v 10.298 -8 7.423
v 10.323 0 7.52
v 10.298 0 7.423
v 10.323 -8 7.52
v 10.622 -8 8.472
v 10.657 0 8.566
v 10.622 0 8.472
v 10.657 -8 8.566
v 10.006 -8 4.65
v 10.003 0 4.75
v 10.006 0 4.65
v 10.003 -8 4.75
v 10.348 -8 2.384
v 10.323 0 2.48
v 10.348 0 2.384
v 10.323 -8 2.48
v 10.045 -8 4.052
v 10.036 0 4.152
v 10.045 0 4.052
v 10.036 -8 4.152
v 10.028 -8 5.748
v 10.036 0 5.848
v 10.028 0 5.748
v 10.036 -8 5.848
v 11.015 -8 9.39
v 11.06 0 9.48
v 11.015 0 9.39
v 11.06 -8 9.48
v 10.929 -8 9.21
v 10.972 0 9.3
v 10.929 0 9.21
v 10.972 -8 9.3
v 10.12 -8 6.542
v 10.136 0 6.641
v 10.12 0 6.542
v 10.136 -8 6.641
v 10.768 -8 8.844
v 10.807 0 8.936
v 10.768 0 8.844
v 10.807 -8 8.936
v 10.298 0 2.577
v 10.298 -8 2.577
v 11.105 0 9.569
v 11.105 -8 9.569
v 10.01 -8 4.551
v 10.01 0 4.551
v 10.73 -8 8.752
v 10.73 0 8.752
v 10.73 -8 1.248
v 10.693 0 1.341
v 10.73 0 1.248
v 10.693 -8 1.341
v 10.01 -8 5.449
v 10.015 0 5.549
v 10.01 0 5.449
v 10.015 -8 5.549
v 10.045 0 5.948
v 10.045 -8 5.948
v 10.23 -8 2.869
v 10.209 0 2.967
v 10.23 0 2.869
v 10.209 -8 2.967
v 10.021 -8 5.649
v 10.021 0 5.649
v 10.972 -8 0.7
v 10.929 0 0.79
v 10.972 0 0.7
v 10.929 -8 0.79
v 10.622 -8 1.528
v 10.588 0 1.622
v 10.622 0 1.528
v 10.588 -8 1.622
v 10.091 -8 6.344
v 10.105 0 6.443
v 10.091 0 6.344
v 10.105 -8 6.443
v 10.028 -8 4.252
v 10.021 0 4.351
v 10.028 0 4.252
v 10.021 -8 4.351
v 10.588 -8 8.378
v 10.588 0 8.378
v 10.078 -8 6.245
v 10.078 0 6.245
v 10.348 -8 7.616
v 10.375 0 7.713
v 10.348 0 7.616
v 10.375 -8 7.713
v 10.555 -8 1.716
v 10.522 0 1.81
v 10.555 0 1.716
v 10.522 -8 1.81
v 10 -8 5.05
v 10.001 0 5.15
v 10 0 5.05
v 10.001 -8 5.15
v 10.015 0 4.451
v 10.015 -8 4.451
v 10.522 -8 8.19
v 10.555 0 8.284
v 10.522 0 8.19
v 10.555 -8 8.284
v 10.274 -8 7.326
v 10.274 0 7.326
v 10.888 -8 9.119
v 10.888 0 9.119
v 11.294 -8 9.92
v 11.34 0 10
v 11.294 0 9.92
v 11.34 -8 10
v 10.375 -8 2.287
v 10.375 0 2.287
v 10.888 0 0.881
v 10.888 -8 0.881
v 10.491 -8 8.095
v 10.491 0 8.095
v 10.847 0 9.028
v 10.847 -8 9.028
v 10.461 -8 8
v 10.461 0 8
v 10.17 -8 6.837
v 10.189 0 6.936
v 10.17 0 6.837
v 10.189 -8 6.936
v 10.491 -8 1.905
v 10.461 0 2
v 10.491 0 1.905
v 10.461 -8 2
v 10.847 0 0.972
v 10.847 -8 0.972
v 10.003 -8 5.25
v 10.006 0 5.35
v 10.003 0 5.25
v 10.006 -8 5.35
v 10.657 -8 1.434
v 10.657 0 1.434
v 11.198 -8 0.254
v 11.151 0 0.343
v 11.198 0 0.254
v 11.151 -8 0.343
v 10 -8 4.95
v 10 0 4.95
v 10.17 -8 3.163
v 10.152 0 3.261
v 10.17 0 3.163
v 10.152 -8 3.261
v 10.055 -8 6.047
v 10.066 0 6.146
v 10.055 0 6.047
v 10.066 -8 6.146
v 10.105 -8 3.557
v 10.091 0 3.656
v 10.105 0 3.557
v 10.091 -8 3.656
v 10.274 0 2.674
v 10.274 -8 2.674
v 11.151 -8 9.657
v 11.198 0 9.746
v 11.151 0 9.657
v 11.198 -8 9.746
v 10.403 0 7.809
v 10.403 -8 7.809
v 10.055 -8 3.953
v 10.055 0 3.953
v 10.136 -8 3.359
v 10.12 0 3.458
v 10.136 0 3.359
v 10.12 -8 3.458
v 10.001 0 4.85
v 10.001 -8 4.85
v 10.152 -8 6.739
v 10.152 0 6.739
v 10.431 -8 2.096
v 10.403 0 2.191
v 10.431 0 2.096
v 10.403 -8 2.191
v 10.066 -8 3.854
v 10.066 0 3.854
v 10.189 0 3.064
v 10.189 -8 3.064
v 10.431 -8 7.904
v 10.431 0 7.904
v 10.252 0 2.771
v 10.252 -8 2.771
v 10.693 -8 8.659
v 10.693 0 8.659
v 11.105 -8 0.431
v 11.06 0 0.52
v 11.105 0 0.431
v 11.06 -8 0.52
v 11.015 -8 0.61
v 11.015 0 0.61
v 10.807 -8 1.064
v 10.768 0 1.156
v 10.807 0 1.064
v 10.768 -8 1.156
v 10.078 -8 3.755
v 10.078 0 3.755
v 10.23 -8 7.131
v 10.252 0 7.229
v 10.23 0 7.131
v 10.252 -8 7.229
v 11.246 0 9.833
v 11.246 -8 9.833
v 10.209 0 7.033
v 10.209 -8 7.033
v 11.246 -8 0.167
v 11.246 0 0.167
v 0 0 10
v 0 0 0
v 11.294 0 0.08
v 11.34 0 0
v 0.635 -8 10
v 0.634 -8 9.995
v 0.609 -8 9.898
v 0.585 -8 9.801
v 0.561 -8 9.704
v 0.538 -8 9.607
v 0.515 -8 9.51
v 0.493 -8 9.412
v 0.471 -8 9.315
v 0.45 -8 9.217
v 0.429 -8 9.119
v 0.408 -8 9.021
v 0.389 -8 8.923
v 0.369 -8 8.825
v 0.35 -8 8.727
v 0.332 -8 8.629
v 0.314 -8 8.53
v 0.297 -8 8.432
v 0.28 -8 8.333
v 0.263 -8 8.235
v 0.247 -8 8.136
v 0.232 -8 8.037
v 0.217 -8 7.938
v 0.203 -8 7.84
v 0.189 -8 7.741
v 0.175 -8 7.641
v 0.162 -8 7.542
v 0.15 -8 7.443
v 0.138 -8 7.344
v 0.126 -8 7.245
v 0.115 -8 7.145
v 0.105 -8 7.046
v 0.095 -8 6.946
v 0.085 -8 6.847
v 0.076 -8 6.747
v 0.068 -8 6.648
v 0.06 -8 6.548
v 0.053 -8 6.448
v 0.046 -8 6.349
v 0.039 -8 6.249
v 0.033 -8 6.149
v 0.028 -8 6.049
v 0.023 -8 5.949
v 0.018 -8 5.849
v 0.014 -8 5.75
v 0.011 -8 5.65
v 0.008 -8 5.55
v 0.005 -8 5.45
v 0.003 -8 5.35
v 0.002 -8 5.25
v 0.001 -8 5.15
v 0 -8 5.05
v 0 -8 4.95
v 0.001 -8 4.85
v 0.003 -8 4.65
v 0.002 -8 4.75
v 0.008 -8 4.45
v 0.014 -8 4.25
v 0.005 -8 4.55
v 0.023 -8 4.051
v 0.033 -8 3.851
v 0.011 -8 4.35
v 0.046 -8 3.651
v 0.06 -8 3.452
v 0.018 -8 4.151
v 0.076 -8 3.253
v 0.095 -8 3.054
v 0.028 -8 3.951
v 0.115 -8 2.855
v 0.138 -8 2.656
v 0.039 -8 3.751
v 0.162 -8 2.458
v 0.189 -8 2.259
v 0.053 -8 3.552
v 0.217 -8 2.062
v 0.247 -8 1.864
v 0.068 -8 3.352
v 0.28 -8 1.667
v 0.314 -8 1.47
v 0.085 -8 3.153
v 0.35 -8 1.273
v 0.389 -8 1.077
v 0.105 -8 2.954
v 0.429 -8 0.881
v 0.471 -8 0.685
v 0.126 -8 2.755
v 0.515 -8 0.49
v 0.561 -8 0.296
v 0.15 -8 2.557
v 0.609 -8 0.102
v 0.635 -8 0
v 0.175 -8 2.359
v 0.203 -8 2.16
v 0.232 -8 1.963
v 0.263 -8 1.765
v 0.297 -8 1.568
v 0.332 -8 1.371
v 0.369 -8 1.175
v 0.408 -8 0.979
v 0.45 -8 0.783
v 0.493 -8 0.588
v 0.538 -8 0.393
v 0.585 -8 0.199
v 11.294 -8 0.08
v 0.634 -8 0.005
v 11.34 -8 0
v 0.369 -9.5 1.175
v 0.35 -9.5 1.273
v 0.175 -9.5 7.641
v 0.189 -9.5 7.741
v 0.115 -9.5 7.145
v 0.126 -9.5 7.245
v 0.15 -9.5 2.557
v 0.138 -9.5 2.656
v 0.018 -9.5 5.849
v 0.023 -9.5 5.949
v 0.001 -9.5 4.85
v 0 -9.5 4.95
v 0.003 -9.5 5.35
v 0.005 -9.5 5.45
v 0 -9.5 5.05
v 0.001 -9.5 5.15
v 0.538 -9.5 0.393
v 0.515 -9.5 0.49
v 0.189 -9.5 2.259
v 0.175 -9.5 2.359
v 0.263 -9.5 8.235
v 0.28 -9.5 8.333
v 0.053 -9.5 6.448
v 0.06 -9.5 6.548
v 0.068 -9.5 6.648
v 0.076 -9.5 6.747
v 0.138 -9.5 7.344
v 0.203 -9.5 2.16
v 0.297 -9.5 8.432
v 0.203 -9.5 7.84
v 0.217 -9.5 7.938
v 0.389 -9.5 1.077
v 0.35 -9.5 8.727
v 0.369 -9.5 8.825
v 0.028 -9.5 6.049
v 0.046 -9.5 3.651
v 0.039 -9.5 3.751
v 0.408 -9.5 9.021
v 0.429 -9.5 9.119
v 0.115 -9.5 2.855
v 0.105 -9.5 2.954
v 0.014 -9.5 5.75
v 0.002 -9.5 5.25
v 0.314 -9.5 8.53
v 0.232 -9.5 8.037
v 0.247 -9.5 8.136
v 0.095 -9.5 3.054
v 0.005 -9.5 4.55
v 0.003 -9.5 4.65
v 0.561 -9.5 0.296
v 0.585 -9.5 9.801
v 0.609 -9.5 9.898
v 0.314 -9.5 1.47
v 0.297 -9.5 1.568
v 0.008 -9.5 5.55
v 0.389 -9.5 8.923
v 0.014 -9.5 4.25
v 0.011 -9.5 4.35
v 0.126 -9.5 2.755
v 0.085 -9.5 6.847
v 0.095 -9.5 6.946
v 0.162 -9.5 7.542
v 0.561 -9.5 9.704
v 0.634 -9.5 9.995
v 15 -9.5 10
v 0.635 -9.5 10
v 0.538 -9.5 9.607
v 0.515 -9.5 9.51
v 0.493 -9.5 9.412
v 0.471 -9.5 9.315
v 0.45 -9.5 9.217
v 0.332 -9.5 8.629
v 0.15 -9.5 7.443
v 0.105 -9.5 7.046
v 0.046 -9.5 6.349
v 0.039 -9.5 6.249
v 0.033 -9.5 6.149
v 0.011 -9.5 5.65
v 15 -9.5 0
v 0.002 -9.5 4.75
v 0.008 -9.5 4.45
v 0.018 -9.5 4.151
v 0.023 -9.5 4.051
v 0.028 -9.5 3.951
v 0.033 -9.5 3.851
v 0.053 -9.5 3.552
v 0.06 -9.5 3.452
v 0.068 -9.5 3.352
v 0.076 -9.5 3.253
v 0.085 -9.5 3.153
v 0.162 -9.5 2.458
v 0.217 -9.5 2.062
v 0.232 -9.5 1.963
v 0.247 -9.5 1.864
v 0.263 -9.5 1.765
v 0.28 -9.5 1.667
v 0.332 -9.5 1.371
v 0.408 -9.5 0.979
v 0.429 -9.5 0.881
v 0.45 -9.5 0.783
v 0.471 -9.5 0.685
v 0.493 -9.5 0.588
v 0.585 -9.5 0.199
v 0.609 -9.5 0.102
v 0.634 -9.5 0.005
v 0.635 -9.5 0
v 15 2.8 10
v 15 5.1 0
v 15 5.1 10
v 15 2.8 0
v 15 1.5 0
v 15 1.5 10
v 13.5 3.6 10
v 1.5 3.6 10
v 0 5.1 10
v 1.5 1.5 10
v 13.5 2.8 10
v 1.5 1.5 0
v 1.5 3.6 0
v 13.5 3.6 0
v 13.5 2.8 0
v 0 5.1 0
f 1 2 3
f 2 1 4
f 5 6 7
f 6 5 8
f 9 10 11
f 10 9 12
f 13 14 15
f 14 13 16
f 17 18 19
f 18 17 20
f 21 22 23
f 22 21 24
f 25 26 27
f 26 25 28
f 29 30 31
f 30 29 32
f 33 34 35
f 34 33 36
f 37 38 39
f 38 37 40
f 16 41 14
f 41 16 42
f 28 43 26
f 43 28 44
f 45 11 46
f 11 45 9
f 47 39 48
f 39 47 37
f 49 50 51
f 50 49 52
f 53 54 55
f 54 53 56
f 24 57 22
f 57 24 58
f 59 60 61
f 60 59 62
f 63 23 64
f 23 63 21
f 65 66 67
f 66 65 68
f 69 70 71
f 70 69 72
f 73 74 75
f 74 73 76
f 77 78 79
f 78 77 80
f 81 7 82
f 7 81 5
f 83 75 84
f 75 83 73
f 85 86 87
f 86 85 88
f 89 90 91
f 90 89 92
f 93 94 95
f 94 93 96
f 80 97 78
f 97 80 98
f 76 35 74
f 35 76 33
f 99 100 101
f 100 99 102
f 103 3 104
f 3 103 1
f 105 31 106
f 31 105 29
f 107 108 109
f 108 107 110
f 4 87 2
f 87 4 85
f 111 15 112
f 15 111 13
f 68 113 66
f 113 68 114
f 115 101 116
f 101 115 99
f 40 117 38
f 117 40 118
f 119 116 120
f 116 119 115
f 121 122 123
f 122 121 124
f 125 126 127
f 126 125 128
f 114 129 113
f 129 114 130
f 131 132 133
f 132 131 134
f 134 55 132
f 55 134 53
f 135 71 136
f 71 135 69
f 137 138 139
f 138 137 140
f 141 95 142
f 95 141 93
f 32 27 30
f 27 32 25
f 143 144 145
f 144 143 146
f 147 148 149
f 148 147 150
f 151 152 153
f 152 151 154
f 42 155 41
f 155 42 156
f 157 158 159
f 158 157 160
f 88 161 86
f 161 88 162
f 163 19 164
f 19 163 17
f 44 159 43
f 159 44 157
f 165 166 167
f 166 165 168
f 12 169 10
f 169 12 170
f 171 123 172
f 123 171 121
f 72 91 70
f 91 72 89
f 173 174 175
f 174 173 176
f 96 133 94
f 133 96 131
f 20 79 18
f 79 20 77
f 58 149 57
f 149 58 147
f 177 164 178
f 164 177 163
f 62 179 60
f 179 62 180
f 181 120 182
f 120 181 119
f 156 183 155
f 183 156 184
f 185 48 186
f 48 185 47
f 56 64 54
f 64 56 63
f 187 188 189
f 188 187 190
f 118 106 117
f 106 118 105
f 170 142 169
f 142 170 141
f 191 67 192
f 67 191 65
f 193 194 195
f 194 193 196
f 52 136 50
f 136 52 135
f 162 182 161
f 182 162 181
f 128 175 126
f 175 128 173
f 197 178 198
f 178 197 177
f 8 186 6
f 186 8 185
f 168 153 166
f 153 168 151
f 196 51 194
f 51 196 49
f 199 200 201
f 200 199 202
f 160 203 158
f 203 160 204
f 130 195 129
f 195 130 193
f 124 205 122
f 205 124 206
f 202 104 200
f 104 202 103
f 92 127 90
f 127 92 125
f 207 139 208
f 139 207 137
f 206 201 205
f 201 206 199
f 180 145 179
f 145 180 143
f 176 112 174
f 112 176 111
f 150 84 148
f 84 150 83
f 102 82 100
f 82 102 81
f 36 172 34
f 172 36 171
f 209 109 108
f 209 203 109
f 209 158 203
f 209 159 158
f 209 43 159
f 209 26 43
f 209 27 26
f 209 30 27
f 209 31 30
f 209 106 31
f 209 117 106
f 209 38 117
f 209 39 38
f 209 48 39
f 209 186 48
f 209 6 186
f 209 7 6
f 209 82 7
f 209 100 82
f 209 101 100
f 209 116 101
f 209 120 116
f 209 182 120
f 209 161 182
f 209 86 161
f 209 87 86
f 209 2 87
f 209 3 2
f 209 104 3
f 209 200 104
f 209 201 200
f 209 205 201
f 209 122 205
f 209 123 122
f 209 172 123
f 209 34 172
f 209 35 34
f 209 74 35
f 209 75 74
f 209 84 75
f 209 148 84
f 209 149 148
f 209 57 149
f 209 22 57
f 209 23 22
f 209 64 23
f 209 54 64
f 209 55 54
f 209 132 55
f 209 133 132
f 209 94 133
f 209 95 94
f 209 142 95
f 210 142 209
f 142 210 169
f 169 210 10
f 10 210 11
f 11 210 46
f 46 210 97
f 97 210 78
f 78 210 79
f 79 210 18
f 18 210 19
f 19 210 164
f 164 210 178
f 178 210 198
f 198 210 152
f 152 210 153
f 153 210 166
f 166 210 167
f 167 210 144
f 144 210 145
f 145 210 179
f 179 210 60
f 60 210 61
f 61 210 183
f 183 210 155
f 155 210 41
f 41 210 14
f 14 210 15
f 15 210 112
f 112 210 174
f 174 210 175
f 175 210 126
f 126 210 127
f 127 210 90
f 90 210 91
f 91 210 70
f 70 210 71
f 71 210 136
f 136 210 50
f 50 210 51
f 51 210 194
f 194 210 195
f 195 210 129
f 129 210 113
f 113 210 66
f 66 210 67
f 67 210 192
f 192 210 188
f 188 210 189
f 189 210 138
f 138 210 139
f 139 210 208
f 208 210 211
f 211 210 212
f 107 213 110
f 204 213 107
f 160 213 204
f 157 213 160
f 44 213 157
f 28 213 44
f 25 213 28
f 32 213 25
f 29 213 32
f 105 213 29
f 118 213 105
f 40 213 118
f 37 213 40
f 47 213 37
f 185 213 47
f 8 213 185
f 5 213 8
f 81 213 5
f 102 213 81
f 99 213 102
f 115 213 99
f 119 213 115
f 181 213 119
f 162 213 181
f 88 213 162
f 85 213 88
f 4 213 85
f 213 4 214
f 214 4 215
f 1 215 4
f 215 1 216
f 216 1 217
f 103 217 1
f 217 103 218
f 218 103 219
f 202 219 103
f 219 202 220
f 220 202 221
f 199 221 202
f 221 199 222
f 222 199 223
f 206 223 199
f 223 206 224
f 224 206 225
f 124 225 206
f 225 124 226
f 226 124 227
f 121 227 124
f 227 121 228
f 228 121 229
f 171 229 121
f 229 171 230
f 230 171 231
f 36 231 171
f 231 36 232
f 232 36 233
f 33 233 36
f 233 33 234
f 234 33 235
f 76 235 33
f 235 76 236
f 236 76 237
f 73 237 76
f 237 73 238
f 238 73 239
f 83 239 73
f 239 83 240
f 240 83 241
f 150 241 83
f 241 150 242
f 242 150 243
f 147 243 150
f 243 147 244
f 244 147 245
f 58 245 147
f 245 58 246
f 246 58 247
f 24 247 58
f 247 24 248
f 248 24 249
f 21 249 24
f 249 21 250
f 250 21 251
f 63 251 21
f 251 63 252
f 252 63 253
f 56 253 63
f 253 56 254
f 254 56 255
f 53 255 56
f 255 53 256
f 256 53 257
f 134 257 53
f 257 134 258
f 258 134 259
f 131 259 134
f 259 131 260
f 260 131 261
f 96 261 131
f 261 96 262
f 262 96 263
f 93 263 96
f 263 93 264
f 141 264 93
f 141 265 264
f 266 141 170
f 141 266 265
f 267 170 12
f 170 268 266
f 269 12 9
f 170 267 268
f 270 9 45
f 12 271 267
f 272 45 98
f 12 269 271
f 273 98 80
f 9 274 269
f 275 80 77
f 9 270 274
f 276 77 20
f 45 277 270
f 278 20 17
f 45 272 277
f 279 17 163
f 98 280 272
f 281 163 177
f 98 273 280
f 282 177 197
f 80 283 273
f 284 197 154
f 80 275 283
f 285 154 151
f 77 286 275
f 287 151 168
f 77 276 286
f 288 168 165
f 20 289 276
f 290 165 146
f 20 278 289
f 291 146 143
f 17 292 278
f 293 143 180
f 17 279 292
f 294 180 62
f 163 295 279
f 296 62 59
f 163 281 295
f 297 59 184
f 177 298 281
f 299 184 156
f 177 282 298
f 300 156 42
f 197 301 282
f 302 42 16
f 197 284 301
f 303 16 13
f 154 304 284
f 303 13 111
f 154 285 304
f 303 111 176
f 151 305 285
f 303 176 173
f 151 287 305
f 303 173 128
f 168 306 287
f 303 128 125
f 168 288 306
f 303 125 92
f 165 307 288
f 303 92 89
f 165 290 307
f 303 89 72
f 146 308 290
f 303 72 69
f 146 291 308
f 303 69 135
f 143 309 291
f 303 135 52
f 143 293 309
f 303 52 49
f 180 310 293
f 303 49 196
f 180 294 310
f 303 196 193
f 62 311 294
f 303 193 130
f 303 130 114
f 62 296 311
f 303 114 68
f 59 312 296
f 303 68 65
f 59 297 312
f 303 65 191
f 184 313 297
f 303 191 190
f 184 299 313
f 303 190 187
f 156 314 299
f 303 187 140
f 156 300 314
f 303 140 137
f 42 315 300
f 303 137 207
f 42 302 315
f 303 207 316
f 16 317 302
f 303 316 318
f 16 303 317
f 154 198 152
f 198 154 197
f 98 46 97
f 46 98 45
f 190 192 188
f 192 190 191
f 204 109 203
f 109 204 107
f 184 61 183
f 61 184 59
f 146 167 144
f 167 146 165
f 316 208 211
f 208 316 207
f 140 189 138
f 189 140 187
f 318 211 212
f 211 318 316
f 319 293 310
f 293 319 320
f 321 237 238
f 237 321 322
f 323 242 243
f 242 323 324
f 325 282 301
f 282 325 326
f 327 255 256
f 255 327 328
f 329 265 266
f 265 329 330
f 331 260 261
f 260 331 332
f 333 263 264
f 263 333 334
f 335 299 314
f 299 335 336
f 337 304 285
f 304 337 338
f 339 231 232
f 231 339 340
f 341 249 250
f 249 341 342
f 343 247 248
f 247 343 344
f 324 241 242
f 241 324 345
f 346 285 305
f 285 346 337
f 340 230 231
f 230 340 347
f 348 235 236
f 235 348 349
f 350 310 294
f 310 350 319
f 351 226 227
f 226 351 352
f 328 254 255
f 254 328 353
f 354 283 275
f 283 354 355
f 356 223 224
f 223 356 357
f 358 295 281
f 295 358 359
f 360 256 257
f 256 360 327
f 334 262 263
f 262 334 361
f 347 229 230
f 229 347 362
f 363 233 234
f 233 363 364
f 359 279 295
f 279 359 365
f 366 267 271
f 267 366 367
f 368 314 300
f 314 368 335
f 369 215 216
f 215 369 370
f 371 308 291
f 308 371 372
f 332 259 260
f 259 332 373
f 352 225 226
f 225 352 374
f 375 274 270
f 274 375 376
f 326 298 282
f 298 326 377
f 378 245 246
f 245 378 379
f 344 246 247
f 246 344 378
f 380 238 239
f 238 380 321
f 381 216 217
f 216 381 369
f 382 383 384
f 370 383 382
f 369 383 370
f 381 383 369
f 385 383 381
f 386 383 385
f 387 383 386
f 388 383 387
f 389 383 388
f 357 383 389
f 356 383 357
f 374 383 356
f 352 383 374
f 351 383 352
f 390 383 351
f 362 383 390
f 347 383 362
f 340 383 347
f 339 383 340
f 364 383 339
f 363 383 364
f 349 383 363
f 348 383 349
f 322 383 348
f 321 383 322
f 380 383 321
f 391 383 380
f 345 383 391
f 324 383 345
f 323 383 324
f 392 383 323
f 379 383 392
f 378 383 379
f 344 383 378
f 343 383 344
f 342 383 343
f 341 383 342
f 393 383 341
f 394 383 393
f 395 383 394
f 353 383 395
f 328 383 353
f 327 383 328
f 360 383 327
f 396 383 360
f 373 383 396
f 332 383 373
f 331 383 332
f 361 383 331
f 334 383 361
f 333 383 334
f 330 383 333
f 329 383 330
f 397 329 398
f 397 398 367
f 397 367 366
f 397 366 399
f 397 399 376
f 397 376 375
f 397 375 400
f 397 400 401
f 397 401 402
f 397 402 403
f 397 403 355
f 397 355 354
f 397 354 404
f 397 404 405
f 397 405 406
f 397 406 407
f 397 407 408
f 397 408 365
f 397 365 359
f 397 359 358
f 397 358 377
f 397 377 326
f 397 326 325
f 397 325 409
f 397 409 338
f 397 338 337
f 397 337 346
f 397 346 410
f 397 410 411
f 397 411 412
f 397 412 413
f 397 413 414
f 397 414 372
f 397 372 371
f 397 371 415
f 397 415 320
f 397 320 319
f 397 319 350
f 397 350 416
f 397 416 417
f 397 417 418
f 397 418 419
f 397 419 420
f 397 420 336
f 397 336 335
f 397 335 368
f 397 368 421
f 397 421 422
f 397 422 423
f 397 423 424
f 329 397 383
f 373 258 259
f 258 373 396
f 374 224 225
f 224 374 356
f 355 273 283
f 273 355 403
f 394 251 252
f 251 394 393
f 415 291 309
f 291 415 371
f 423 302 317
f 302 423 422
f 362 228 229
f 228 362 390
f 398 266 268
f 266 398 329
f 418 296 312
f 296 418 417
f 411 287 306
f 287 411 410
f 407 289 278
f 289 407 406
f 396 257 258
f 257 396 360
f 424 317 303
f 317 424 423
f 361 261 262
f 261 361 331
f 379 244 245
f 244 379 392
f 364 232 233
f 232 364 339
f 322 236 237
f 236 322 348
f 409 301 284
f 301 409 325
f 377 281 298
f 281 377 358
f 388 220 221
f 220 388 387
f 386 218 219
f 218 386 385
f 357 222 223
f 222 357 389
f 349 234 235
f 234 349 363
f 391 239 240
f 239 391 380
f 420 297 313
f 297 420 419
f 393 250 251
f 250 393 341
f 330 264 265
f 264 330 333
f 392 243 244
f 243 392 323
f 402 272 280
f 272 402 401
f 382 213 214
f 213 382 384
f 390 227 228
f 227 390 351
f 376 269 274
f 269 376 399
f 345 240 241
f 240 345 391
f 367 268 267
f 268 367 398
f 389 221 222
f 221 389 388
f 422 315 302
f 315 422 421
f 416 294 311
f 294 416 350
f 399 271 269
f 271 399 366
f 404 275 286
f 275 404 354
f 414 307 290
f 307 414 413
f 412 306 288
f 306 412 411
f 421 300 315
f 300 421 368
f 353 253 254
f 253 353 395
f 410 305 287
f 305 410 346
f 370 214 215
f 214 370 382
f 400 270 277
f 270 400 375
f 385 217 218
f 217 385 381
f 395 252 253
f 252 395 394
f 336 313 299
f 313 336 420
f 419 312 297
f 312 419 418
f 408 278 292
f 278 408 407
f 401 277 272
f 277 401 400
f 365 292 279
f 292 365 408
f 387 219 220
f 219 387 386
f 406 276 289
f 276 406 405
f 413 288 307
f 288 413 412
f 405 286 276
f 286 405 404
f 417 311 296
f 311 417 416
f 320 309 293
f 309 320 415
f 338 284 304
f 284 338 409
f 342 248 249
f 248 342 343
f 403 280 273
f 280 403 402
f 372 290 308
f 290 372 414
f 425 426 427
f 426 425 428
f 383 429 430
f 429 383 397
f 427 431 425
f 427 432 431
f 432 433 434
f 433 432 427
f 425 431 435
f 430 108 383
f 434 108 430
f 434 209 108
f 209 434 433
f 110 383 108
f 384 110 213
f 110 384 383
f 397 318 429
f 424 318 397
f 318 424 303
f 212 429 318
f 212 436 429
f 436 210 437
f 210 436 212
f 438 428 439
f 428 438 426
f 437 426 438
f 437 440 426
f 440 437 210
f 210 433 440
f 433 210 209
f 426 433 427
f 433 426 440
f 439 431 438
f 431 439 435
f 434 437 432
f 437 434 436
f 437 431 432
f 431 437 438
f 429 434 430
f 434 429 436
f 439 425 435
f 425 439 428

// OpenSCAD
$fs=.1;
$fa=.1;

difference() {
    cube([15,5.1,10]);
    translate([1.5,1.5,0]) cube([12,2.1,12]);
    translate([1.5,1.5,0]) cube([30,1.3,12]);
}

translate([20,0,5]) rotate([90,0,0]) {
    intersection() {
        union(){
            cylinder(h=8,d=20);
            translate([0,0,8]) cylinder(h=1.5,d=40);
        }
        translate([-20,-5,0]) cube([15,10,30]);
    }
}
